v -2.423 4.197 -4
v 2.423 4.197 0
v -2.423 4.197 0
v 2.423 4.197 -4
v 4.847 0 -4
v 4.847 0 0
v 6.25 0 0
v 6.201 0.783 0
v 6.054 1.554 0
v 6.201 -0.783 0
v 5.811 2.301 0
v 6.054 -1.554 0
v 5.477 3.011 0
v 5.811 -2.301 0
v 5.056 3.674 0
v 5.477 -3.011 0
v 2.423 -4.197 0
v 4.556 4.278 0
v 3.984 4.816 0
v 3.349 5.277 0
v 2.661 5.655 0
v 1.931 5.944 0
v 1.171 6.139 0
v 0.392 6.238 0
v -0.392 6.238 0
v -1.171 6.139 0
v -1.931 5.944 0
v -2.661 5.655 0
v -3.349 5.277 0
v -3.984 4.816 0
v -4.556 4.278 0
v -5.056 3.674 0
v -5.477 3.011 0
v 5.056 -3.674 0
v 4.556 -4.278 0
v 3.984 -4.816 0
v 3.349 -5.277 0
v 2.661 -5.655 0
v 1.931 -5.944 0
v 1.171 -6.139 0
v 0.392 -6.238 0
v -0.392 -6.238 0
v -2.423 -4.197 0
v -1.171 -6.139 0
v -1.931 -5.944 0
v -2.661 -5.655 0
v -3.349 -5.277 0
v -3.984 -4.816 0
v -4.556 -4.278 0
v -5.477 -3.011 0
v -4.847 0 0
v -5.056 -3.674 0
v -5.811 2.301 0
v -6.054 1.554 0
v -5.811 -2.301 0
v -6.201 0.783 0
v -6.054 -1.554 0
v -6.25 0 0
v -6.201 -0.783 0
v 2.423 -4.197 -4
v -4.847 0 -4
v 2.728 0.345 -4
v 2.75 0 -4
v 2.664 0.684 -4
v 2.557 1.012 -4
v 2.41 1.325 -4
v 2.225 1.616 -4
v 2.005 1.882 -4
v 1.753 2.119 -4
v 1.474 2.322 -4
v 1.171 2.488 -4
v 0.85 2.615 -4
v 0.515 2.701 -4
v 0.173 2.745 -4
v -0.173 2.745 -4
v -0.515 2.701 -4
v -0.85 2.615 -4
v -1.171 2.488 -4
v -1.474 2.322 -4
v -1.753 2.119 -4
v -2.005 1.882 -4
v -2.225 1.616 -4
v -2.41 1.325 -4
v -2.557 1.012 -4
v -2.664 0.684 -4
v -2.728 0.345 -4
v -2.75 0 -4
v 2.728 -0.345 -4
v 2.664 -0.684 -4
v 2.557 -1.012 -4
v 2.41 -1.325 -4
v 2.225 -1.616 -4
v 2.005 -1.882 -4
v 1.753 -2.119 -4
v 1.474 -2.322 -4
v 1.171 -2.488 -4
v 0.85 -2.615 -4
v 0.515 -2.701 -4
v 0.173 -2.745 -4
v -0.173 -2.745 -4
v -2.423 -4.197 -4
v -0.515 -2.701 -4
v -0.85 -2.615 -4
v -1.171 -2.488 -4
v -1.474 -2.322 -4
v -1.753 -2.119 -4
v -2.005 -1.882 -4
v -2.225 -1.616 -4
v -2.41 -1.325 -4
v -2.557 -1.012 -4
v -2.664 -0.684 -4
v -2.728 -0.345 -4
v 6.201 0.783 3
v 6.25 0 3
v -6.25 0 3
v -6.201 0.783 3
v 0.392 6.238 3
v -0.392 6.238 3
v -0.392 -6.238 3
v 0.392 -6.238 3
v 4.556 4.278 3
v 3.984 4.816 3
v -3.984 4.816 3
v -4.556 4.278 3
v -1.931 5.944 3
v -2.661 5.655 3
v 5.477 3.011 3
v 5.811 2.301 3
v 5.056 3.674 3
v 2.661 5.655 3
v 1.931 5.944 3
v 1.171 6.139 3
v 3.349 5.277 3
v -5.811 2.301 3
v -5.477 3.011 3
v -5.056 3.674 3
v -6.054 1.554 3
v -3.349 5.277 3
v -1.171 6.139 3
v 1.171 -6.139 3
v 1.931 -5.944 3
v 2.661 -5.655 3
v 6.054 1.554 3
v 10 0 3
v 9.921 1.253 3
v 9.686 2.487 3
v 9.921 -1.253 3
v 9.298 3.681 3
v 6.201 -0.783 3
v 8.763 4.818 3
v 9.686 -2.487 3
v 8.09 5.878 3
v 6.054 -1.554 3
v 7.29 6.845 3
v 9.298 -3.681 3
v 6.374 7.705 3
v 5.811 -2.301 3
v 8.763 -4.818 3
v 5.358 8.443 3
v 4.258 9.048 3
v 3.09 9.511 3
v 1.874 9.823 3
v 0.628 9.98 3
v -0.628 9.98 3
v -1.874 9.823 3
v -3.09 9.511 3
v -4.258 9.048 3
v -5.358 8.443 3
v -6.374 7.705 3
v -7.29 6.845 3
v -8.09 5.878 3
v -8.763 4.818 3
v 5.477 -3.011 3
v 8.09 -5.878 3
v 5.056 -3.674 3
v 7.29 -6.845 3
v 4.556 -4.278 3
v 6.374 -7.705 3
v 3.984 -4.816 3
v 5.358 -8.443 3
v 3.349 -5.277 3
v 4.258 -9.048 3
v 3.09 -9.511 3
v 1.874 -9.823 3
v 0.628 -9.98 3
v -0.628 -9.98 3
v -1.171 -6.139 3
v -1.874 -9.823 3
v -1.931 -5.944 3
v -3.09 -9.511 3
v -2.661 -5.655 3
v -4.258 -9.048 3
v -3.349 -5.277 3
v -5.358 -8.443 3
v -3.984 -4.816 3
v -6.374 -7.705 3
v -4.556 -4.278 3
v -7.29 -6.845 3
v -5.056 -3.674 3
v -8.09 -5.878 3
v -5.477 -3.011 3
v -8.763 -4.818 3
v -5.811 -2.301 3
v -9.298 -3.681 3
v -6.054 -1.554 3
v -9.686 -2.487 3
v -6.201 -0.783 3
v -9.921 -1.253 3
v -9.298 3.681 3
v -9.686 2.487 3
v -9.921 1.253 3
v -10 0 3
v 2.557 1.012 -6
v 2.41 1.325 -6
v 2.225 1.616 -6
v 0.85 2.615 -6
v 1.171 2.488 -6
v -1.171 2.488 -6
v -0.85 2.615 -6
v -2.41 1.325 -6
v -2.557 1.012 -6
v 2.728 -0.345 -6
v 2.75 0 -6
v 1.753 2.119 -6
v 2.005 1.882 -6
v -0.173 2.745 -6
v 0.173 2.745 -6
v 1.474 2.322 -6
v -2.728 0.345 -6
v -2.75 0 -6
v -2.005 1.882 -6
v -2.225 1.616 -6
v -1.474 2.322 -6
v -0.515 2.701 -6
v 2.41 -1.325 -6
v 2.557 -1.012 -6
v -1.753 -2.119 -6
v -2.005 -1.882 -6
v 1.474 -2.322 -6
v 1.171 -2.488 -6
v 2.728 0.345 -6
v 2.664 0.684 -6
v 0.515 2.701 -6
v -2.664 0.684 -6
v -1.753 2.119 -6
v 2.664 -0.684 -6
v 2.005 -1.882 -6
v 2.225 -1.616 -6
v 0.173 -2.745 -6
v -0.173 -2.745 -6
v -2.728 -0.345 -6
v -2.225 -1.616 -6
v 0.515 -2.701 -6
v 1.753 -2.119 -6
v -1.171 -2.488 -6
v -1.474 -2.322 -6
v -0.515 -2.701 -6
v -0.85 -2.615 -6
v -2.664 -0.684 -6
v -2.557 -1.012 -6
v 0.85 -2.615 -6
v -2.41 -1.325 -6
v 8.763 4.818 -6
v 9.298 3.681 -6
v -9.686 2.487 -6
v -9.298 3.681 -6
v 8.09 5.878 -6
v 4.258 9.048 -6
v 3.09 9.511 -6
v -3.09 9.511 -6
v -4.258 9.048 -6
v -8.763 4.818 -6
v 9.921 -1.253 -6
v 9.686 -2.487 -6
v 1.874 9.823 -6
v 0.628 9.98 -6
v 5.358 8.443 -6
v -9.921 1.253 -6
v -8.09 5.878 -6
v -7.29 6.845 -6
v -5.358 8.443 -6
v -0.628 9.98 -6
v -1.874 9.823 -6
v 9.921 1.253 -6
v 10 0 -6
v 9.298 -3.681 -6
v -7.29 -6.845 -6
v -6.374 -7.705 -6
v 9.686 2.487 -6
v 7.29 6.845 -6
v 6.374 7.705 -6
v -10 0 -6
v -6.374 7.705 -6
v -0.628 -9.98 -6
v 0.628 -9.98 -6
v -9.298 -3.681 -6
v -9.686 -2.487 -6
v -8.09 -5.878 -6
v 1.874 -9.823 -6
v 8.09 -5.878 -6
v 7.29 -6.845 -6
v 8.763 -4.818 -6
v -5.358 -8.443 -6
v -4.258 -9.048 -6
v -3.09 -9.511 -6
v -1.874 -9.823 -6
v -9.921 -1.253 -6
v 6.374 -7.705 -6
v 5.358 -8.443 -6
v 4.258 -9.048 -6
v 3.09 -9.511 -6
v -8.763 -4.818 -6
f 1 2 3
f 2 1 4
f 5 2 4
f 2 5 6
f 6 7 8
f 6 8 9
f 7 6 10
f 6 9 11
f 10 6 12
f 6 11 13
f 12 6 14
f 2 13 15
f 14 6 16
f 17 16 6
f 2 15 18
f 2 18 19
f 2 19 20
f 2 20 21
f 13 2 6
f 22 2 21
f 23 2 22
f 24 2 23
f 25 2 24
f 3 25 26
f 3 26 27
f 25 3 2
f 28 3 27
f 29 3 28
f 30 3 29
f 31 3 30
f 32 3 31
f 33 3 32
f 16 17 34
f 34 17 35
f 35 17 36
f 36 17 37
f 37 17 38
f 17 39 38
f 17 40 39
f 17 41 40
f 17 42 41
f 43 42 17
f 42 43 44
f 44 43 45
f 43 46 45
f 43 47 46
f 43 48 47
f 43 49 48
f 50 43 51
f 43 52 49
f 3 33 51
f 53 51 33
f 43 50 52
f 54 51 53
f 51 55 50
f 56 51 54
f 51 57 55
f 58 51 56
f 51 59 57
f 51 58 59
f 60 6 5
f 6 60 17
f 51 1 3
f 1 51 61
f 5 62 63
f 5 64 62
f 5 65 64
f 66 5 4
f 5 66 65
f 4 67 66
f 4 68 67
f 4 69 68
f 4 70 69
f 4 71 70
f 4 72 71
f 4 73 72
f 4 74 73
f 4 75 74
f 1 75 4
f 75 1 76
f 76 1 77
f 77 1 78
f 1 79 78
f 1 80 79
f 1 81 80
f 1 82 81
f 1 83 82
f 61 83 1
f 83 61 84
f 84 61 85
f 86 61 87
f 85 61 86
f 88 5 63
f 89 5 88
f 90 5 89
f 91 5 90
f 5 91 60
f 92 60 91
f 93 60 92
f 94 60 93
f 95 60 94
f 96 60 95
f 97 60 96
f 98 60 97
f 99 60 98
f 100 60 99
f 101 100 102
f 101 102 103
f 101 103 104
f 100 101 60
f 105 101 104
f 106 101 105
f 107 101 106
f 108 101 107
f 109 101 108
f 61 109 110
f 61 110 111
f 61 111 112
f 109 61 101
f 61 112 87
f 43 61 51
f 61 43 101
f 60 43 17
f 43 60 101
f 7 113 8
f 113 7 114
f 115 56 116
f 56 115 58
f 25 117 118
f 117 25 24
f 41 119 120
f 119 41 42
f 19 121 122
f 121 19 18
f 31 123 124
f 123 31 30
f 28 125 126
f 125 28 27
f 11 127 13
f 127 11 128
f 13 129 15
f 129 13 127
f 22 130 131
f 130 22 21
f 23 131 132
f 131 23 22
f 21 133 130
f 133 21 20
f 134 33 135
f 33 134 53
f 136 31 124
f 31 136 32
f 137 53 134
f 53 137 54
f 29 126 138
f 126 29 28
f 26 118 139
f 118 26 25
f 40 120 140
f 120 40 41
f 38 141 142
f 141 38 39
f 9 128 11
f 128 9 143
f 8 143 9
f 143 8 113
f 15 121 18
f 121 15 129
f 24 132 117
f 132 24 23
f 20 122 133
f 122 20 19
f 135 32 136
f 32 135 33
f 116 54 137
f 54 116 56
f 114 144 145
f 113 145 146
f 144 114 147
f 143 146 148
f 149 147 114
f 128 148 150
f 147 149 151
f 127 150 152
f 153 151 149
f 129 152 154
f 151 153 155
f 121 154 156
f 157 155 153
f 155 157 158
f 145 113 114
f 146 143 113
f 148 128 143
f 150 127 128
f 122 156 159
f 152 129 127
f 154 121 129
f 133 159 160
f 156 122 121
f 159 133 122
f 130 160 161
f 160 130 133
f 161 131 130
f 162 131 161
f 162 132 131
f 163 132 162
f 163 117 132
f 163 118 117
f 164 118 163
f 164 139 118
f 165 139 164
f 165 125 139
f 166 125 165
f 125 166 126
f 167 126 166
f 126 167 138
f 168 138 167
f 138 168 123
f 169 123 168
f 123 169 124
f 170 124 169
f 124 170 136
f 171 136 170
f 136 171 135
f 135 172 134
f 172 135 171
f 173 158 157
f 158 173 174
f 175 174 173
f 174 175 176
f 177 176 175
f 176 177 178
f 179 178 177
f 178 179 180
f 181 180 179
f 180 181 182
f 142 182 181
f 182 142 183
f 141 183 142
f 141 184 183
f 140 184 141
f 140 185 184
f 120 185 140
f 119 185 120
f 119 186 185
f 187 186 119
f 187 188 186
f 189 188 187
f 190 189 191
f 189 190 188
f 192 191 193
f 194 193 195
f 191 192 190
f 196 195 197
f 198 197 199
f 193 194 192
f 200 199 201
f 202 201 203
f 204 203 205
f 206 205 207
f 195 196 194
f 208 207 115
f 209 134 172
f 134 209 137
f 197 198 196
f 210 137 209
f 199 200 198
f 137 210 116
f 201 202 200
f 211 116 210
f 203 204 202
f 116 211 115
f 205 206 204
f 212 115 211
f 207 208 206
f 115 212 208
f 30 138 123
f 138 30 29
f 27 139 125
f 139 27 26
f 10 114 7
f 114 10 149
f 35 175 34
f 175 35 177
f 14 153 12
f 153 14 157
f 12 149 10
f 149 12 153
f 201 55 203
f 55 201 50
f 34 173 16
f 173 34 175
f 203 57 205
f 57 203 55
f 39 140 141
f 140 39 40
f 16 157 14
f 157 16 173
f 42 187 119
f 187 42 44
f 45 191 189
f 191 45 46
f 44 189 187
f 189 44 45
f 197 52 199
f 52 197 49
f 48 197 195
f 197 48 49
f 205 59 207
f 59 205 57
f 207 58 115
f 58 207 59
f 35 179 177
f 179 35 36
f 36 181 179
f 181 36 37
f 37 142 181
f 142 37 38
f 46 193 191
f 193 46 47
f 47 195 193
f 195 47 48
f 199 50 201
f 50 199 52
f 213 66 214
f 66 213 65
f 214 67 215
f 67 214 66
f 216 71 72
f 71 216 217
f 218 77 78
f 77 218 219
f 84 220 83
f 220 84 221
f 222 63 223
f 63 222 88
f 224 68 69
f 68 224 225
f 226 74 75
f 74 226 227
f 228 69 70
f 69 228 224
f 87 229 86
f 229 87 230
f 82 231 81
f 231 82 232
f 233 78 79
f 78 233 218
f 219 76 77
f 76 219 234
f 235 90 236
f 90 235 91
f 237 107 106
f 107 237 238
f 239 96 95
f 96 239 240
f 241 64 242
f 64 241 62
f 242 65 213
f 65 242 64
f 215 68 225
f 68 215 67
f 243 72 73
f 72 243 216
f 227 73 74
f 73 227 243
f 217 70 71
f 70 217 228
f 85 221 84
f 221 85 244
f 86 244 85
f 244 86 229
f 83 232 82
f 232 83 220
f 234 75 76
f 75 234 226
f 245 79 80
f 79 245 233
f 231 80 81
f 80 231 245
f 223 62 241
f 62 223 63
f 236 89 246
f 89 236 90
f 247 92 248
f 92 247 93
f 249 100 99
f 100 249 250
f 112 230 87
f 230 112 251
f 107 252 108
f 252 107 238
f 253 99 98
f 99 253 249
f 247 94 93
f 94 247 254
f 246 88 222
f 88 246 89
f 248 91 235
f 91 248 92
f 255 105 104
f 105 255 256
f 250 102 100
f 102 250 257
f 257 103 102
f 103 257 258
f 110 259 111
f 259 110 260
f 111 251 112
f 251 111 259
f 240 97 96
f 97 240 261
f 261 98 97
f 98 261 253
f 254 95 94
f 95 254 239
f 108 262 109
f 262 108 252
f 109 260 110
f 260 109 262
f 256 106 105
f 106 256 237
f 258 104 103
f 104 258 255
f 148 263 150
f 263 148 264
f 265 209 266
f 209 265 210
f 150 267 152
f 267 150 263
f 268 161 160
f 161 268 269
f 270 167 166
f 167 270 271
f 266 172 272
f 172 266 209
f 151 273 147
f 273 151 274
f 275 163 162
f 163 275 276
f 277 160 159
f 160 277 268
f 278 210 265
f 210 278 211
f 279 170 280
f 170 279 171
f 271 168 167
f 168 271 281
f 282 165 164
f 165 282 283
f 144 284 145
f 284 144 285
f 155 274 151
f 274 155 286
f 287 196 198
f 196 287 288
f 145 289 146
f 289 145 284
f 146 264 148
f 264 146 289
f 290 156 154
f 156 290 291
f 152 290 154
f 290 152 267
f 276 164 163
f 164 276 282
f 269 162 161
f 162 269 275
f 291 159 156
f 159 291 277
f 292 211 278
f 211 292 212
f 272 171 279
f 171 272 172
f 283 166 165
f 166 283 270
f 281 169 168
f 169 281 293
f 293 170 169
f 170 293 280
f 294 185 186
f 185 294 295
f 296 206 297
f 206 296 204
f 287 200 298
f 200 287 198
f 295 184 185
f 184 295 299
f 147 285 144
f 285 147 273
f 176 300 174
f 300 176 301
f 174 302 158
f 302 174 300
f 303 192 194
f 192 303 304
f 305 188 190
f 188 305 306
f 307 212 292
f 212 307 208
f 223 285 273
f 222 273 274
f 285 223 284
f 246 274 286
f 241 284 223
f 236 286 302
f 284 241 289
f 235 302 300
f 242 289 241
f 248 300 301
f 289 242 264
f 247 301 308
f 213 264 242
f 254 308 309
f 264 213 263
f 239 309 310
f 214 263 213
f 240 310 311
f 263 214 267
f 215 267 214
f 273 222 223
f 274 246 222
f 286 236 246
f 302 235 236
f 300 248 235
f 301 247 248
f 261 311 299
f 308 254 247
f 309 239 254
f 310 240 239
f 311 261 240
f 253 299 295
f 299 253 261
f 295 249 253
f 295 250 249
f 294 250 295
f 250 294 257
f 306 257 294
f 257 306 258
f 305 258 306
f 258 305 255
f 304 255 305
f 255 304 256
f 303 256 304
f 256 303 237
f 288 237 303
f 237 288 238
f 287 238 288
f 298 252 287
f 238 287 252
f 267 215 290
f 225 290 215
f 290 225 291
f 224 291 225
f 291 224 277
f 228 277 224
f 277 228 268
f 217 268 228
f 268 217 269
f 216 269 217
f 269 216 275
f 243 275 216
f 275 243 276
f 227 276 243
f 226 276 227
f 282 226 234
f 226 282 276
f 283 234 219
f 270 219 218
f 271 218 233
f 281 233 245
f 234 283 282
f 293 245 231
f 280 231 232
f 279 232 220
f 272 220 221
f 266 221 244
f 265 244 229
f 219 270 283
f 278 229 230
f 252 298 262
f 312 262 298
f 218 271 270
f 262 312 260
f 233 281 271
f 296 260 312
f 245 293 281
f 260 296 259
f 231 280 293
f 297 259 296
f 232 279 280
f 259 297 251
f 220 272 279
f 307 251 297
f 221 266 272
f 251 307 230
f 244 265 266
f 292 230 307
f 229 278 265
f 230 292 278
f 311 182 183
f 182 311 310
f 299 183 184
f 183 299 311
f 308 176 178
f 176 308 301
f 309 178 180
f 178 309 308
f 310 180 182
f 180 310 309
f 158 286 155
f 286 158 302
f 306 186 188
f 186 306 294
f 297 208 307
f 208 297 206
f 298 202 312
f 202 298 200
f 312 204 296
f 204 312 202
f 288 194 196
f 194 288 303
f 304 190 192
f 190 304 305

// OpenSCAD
$fn = 50;

difference() {
	union() {
		translate(v = [0, 0, -6.0]) {
			cylinder(h = 9.0, r = 10.0);
		}
	}
	union() {
		translate(v = [0, 0, 0]) {
			rotate(a = [0, 0, 0]) {
				difference() {
					union() {
						translate(v = [0, 0, -4]) {
							linear_extrude(height = 4) {
								polygon(points = [[4.8468, 0.0], [2.4234000000000004, 4.197451927062417], [-2.423399999999999, 4.197451927062417], [-4.8468, 5.935618106107392e-16], [-2.423400000000002, -4.197451927062416], [2.423399999999997, -4.197451927062419]]);
							}
						}
					}
					union();
				}
			}
		}
		#cylinder(h = 3, r = 6.25);
		#translate(v = [0, 0, -100.0]) {
			cylinder(h = 200, r = 2.75);
		}
	}
}
